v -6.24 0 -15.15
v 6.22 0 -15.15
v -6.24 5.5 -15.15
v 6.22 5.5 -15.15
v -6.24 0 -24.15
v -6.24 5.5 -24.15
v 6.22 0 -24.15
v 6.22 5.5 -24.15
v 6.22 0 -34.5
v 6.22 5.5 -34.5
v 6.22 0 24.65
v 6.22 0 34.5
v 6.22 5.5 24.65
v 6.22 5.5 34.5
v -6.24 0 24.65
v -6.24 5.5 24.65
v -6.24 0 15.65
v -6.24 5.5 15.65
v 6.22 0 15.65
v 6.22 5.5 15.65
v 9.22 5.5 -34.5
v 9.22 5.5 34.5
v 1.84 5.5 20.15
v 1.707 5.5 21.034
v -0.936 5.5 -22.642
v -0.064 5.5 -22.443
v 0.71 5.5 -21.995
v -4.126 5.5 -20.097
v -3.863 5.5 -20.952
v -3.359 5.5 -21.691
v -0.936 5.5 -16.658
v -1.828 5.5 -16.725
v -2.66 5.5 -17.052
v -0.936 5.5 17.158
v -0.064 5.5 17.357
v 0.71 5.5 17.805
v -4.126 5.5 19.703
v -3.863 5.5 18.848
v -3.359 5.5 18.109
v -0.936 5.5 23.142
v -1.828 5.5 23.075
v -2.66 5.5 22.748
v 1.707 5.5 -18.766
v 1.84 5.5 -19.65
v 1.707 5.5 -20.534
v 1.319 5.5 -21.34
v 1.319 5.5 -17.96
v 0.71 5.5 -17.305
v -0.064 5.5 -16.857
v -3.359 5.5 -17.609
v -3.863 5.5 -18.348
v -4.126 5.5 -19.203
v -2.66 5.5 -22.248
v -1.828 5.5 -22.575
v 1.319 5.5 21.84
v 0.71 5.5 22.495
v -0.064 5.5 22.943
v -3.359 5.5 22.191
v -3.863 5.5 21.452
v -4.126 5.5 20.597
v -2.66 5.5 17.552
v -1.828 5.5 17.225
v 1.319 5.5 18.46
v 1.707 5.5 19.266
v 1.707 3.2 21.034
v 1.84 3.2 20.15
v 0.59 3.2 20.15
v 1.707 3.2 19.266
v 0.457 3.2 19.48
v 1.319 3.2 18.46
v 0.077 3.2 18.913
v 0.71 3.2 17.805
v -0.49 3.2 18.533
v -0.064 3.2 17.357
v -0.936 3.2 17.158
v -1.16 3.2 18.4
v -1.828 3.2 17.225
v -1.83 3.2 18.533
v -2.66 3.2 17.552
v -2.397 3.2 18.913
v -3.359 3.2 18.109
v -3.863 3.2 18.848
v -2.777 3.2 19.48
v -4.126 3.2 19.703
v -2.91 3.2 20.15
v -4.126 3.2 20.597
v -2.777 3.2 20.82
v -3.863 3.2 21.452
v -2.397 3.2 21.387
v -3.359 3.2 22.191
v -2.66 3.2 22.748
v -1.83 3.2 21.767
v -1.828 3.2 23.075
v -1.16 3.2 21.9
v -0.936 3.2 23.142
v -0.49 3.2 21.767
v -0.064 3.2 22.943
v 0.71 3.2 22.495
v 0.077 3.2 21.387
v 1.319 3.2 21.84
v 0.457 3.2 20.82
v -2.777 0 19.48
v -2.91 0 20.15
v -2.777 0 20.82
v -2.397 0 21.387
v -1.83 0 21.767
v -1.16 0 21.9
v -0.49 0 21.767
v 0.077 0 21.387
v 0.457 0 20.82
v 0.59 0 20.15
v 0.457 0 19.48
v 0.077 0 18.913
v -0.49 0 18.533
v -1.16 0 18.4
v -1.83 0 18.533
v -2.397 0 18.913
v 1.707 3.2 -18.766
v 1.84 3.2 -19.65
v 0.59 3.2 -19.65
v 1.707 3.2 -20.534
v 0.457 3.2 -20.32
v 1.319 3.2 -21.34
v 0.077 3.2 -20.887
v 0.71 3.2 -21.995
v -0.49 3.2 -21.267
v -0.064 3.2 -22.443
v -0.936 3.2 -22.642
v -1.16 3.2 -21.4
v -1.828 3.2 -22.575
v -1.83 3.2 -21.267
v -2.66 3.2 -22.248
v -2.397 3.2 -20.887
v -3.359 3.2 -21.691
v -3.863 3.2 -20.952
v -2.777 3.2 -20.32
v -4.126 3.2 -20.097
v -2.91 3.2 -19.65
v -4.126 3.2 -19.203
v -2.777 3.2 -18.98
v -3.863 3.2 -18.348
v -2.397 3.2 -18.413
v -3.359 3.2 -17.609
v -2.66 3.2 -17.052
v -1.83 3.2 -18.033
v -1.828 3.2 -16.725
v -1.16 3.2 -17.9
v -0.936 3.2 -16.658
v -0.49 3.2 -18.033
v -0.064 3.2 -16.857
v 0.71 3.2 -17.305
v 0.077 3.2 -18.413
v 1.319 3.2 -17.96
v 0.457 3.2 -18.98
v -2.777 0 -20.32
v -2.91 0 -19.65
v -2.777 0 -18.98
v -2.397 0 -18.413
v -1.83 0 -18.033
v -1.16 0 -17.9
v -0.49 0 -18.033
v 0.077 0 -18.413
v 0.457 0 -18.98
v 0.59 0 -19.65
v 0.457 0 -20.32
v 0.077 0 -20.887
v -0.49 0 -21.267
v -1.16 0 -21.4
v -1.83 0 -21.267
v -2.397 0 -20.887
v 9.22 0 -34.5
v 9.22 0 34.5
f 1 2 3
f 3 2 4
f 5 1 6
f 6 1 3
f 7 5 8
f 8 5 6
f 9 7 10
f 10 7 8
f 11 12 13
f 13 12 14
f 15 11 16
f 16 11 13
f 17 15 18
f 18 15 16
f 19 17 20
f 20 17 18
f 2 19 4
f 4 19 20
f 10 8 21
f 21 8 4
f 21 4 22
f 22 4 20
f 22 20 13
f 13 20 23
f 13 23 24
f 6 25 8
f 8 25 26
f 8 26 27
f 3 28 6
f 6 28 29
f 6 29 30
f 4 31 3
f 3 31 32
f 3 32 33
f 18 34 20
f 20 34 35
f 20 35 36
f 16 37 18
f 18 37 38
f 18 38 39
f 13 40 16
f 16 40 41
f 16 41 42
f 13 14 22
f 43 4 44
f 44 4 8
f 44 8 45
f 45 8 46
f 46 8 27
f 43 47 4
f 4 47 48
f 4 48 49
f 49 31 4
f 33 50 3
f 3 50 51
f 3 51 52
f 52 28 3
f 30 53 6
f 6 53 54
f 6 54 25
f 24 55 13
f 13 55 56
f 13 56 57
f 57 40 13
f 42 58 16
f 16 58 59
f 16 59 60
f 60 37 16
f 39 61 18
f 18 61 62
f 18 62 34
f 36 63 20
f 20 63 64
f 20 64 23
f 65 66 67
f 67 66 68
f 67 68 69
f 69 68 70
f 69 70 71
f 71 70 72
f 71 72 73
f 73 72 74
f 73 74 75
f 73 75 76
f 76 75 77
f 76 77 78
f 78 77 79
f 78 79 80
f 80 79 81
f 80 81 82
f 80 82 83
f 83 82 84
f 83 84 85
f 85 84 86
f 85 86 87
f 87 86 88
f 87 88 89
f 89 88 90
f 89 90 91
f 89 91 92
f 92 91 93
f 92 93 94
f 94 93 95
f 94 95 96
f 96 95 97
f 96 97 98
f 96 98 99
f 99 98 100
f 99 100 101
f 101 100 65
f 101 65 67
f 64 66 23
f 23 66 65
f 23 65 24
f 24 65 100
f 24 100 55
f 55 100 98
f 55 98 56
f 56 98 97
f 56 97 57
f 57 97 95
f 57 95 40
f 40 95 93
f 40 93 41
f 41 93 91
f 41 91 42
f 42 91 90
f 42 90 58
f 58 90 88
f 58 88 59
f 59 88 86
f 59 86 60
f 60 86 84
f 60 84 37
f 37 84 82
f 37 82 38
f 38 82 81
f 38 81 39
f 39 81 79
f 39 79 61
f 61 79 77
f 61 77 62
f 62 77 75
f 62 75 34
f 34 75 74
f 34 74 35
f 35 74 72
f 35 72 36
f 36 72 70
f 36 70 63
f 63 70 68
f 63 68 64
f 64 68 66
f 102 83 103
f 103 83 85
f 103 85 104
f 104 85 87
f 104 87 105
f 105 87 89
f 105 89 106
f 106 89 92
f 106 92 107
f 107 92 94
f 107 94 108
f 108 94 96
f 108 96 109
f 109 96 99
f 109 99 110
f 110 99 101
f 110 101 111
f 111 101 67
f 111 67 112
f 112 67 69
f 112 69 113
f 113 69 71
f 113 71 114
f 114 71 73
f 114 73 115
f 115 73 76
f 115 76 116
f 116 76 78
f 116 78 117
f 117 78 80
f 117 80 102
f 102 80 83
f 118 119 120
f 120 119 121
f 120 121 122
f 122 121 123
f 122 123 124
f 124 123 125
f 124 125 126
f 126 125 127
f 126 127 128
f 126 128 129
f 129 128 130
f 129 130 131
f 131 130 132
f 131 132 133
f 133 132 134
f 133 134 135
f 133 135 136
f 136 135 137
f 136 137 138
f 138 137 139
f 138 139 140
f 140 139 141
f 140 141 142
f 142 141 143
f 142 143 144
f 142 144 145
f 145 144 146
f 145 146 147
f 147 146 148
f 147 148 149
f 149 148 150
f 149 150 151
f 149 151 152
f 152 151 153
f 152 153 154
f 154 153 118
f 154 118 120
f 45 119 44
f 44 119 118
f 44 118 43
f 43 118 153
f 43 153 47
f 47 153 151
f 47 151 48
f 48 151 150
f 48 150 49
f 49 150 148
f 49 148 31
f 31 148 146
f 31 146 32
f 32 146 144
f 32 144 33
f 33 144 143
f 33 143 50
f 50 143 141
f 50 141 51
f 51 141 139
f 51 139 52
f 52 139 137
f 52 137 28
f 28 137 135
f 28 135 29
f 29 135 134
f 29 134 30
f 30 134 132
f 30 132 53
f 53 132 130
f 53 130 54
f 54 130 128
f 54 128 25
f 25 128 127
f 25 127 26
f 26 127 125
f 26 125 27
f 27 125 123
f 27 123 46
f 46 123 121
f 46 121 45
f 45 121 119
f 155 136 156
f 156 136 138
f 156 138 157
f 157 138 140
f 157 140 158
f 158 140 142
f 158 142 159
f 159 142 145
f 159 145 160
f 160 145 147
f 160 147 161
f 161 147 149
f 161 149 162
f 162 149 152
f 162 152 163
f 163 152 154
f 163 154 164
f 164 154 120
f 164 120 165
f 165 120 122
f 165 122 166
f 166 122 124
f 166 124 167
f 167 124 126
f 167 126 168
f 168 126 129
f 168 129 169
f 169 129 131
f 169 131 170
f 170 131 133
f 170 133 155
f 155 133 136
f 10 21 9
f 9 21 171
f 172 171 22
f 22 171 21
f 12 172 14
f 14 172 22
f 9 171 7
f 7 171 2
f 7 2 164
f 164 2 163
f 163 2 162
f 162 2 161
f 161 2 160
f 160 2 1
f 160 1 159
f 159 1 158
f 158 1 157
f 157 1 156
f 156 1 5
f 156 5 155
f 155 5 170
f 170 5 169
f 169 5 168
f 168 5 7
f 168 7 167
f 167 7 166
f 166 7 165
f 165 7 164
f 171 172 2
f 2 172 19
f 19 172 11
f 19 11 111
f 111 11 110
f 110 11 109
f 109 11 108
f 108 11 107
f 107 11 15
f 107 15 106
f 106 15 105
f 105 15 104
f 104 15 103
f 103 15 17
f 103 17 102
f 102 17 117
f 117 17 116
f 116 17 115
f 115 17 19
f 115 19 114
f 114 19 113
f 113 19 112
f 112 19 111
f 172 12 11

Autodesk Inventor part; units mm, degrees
ref_plane "YZ Plane" through (0, 0, 0) normal (1, 0, 0) x (0, 1, 0)
ref_plane "XZ Plane" through (0, 0, 0) normal (0, 1, 0) x (-1, 0, 0)
ref_plane "XY Plane" through (0, 0, 0) normal (0, 0, 1) x (1, 0, 0)
sketch "Sketch1" plane through (0, 0, 0) normal (0, 1, 0) x (-1, 0, 0)
  line L0 (-9.22, 34.5) -> (9.22, 34.5)
  line L1 (9.22, 34.5) -> (9.22, -34.5)
  line L2 (9.22, -34.5) -> (-9.22, -34.5)
  line L3 (-9.22, -34.5) -> (-9.22, 34.5)
  line L4 (-9.22, 34.5) -> (9.22, -34.5) construction
  line L5 (9.22, 34.5) -> (-9.22, -34.5) construction
  point P0 (0, 0)
  dimension "d0" = 18.44
  dimension "d1" = 69
extrude "Extrusion1" add sketch "Sketch1" along normal blind 5.5
sketch "Sketch4" plane through (0, 5.5, 0) normal (0, 1, 0) x (1, 0, 0)
  circle A0 centre (-1.16, 19.65) radius 2.4879
  line L0 (-9.22, 34.5) -> (-9.22, -34.5) projected
  line L1 (-9.22, -34.5) -> (9.22, -34.5) projected
  point P0 (0, 0)
  dimension "d6" = 8.06
  dimension "d7" = 54.15
hole "Hole1" at (-1.16, 5.5, -19.65) direction (0, -1, 0) diameter 3.5 depth 10.5 tip angle 118 counterbore diameter 6 counterbore depth 2.3
sketch "Sketch5" plane through (0, 5.5, 0) normal (0, 1, 0) x (1, 0, 0)
  circle A0 centre (-1.16, -20.15) radius 2.6607
  line L0 (-9.22, 34.5) -> (-9.22, -34.5) projected
  line L1 (-9.22, -34.5) -> (9.22, -34.5) projected
  point P0 (0, 0)
  dimension "d15" = 8.06
  dimension "d16" = 14.35
hole "Hole2" at (-1.16, 5.5, 20.15) direction (0, -1, 0) diameter 3.5 depth 10.5 tip angle 118 counterbore diameter 6 counterbore depth 2.3
sketch "Sketch6" plane through (0, 5.5, 0) normal (0, 1, 0) x (1, 0, 0)
  line L0 (-9.22, -34.5) -> (9.22, -34.5) projected
  line L1 (-9.22, 34.5) -> (-9.22, -34.5) projected
  line L2 (6.22, -34.5) -> (-9.22, -34.5)
  line L3 (-9.22, -34.5) -> (-9.22, 34.5)
  line L4 (-9.22, 34.5) -> (6.22, 34.5)
  line L5 (6.22, 34.5) -> (6.22, -34.5)
  line L6 (9.22, -34.5) -> (9.22, 34.5) projected
  line L7 (6.22, -15.65) -> (-6.2399, -15.65)
  line L8 (-6.2399, -15.65) -> (-6.2399, -24.65)
  line L9 (-6.2399, -24.65) -> (6.22, -24.65)
  line L10 (6.22, 15.15) -> (-6.2399, 15.15)
  line L11 (-6.2399, 15.15) -> (-6.2399, 24.15)
  line L12 (-6.2399, 24.15) -> (6.22, 24.15)
  circle A0 centre (-1.16, -20.15) radius 3 projected
  circle A1 centre (-1.16, 19.65) radius 3 projected
  point P0 (0, 0)
  dimension "d24" = 3
  dimension "d25" = 9
  dimension "d26" = 9
  dimension "d27" = 4.5
  dimension "d28" = 4.5
extrude "Extrusion2" cut sketch "Sketch6" against normal blind 9 contours L1 L4 L5 L12 L11 L10 L7 L8 L9 L0
properties part number "support_2"
